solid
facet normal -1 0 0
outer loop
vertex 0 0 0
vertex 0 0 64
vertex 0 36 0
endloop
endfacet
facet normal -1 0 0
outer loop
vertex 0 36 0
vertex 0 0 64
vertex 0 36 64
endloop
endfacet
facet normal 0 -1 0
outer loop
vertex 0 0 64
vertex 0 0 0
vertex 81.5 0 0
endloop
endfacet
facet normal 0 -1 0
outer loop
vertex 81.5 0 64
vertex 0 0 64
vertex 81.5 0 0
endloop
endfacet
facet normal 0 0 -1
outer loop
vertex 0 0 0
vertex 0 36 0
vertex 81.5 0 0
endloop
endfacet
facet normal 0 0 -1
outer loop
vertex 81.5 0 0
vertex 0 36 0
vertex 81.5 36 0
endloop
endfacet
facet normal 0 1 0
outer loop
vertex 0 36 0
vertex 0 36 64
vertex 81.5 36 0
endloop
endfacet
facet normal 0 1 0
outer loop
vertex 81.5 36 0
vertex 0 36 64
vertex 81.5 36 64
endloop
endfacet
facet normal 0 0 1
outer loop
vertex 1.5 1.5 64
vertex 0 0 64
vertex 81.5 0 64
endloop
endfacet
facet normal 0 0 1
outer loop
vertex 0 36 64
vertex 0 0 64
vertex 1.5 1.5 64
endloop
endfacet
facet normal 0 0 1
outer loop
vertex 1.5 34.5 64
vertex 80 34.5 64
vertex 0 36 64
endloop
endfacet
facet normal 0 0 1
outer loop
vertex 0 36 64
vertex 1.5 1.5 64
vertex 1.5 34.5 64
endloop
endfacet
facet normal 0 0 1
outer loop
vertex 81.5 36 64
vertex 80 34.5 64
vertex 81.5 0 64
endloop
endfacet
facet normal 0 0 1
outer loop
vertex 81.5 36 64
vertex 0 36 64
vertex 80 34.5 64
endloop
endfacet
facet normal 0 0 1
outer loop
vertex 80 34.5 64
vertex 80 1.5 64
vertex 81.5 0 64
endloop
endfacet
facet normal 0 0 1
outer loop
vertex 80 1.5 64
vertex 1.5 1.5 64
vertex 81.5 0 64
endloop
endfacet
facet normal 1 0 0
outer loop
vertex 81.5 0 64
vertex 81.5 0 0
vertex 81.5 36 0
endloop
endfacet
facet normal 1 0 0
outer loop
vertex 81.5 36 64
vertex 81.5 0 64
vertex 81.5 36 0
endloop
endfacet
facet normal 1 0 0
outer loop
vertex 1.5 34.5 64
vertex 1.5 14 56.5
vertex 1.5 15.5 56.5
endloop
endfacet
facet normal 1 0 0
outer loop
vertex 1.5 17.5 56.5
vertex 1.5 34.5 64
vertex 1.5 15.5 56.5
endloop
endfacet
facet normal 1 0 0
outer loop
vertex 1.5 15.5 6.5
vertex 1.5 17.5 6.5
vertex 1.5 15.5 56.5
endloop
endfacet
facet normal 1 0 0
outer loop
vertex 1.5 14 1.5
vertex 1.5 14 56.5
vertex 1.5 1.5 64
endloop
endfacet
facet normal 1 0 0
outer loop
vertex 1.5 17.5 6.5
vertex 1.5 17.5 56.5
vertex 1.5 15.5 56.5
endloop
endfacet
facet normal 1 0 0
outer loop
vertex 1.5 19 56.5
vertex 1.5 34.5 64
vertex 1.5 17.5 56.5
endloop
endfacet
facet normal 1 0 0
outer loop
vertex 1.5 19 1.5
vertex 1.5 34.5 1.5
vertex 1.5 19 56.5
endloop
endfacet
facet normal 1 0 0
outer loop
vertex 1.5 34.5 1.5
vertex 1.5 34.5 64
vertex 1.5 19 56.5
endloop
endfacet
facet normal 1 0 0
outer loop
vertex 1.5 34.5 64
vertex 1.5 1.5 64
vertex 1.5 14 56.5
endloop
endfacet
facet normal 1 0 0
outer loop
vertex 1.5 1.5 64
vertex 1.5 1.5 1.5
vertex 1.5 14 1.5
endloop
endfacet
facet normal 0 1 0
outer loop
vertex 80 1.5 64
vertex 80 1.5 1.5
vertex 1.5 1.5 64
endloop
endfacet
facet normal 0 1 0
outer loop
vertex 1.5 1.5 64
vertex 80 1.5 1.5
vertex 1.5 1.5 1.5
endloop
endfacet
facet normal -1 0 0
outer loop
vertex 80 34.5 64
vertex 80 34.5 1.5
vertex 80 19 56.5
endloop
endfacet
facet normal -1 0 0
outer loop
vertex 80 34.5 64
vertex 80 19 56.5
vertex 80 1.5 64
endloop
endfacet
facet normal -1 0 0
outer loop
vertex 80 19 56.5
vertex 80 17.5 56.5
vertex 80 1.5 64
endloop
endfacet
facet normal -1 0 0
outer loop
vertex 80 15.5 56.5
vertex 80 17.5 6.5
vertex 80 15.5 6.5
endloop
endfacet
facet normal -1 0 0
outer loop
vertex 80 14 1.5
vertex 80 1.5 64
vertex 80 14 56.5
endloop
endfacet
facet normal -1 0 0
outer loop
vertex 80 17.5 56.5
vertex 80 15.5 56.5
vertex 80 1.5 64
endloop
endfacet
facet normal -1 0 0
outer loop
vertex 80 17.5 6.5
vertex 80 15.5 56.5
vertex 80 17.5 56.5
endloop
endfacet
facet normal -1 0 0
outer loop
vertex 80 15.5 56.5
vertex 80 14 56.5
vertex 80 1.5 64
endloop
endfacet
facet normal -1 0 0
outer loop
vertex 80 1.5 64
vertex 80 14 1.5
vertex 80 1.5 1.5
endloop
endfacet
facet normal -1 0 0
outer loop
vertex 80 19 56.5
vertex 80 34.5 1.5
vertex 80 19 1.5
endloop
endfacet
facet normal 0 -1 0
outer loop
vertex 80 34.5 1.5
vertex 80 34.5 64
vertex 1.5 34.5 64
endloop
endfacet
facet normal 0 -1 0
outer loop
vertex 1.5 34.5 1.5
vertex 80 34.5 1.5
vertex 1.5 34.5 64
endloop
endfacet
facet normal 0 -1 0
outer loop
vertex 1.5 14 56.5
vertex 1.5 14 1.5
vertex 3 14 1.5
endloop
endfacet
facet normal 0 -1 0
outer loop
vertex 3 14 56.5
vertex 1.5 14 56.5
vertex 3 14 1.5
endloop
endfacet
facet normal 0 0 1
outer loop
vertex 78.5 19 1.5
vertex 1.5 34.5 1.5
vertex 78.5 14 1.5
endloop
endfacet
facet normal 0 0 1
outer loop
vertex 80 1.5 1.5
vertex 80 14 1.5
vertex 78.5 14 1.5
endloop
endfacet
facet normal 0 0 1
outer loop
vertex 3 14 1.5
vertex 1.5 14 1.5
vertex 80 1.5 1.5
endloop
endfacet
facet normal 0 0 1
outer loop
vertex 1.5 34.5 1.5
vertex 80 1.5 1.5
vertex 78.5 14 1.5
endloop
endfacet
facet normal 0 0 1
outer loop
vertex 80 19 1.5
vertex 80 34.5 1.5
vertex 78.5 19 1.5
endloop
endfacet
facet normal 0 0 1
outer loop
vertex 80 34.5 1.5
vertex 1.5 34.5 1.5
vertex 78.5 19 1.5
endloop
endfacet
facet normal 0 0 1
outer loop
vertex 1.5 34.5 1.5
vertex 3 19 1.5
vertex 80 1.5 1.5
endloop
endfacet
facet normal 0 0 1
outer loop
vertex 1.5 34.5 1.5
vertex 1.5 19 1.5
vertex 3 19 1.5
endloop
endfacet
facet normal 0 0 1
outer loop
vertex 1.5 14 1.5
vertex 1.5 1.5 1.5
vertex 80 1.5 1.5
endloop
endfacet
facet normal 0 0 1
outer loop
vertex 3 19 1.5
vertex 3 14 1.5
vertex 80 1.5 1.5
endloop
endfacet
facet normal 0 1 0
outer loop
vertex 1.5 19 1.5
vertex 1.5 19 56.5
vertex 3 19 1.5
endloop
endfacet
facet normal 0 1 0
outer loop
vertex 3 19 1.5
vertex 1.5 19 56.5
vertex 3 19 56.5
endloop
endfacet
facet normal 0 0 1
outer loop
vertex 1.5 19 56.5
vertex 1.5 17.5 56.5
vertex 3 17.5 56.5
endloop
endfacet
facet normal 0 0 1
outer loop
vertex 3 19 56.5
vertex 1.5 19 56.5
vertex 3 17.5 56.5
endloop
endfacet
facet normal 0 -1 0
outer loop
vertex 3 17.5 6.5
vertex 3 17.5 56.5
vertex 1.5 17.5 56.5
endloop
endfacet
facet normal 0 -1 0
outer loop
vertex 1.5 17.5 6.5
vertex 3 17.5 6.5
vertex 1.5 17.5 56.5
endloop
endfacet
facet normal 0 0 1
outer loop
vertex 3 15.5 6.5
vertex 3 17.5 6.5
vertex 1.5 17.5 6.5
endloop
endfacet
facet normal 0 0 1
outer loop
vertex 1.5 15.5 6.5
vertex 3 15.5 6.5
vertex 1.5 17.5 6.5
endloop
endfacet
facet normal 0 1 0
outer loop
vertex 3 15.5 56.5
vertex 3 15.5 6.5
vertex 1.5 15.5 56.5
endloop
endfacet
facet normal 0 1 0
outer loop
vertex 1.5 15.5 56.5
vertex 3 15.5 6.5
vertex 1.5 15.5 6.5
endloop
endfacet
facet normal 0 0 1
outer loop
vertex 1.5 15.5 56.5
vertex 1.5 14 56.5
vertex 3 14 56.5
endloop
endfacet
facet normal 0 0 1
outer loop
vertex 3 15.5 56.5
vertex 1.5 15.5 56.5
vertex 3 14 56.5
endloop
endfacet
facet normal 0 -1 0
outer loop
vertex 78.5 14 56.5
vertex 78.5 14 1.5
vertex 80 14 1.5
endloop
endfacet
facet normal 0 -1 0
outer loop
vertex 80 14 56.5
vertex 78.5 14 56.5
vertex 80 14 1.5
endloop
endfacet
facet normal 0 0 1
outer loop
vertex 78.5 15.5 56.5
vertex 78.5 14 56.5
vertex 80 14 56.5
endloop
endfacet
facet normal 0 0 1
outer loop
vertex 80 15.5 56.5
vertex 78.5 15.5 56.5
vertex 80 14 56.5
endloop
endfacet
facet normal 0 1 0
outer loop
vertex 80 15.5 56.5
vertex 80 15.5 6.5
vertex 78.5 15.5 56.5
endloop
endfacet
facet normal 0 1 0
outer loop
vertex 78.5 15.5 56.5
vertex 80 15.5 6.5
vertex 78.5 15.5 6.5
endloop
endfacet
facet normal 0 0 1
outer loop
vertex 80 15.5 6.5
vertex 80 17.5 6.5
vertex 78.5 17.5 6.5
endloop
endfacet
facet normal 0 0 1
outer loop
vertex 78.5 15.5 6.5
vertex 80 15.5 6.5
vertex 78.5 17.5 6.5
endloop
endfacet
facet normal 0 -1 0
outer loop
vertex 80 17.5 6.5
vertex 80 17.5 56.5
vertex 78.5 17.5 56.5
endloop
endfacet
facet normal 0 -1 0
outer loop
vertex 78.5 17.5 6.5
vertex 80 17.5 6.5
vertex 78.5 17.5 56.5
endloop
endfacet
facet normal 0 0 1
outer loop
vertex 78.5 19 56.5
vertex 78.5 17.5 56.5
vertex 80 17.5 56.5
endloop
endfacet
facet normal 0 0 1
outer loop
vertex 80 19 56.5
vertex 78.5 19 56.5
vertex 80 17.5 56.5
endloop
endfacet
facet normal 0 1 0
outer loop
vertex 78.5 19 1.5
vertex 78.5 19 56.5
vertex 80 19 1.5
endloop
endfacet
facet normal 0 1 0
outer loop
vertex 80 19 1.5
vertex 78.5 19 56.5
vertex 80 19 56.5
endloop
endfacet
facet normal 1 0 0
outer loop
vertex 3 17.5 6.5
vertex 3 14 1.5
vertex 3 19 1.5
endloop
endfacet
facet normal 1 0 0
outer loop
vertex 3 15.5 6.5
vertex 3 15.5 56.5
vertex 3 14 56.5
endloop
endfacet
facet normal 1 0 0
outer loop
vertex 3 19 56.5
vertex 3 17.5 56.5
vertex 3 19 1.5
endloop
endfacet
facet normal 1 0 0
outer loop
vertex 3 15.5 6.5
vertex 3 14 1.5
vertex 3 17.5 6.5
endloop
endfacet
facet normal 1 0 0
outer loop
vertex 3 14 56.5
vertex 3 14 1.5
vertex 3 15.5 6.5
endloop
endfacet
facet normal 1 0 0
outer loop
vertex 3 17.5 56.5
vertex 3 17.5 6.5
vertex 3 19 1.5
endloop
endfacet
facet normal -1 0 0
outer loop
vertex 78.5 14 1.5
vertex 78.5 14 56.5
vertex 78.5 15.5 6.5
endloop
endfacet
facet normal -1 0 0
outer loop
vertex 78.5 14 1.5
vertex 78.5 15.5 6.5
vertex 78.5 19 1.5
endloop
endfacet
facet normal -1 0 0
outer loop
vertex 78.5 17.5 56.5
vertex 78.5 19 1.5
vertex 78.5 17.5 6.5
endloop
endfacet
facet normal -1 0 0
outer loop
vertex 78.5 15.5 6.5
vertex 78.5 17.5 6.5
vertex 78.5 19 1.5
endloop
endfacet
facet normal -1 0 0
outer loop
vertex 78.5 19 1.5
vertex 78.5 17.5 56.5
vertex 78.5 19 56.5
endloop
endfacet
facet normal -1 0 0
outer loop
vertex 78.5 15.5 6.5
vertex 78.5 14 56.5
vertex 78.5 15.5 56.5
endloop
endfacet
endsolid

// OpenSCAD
l = 78.5;
bx = 9;
b = 55;
h = 33;
d = 1.5;
sh = 15;
sb = 2;
st = 50;

translate([d,d,d]){
	difference(){
		translate([-d,-d,-d]) cube([l+2*d,h+2*d,b+bx]);
		cube([l,h,b+bx]);
	}
	translate([0,-sb/2-d,0]){
		difference(){
			translate([0,sh,0]) cube([d,2*d+sb,b]);
			translate([0,sh+d,b-st]) cube([d+1,sb,st+1]);
		}
	}
	translate([l-d,-sb/2-d,0]){
		difference(){
			translate([0,sh,0]) cube([d,2*d+sb,b]);
			translate([-1,sh+d,b-st]) cube([d+1,sb,st+1]);
		}
	}
}
